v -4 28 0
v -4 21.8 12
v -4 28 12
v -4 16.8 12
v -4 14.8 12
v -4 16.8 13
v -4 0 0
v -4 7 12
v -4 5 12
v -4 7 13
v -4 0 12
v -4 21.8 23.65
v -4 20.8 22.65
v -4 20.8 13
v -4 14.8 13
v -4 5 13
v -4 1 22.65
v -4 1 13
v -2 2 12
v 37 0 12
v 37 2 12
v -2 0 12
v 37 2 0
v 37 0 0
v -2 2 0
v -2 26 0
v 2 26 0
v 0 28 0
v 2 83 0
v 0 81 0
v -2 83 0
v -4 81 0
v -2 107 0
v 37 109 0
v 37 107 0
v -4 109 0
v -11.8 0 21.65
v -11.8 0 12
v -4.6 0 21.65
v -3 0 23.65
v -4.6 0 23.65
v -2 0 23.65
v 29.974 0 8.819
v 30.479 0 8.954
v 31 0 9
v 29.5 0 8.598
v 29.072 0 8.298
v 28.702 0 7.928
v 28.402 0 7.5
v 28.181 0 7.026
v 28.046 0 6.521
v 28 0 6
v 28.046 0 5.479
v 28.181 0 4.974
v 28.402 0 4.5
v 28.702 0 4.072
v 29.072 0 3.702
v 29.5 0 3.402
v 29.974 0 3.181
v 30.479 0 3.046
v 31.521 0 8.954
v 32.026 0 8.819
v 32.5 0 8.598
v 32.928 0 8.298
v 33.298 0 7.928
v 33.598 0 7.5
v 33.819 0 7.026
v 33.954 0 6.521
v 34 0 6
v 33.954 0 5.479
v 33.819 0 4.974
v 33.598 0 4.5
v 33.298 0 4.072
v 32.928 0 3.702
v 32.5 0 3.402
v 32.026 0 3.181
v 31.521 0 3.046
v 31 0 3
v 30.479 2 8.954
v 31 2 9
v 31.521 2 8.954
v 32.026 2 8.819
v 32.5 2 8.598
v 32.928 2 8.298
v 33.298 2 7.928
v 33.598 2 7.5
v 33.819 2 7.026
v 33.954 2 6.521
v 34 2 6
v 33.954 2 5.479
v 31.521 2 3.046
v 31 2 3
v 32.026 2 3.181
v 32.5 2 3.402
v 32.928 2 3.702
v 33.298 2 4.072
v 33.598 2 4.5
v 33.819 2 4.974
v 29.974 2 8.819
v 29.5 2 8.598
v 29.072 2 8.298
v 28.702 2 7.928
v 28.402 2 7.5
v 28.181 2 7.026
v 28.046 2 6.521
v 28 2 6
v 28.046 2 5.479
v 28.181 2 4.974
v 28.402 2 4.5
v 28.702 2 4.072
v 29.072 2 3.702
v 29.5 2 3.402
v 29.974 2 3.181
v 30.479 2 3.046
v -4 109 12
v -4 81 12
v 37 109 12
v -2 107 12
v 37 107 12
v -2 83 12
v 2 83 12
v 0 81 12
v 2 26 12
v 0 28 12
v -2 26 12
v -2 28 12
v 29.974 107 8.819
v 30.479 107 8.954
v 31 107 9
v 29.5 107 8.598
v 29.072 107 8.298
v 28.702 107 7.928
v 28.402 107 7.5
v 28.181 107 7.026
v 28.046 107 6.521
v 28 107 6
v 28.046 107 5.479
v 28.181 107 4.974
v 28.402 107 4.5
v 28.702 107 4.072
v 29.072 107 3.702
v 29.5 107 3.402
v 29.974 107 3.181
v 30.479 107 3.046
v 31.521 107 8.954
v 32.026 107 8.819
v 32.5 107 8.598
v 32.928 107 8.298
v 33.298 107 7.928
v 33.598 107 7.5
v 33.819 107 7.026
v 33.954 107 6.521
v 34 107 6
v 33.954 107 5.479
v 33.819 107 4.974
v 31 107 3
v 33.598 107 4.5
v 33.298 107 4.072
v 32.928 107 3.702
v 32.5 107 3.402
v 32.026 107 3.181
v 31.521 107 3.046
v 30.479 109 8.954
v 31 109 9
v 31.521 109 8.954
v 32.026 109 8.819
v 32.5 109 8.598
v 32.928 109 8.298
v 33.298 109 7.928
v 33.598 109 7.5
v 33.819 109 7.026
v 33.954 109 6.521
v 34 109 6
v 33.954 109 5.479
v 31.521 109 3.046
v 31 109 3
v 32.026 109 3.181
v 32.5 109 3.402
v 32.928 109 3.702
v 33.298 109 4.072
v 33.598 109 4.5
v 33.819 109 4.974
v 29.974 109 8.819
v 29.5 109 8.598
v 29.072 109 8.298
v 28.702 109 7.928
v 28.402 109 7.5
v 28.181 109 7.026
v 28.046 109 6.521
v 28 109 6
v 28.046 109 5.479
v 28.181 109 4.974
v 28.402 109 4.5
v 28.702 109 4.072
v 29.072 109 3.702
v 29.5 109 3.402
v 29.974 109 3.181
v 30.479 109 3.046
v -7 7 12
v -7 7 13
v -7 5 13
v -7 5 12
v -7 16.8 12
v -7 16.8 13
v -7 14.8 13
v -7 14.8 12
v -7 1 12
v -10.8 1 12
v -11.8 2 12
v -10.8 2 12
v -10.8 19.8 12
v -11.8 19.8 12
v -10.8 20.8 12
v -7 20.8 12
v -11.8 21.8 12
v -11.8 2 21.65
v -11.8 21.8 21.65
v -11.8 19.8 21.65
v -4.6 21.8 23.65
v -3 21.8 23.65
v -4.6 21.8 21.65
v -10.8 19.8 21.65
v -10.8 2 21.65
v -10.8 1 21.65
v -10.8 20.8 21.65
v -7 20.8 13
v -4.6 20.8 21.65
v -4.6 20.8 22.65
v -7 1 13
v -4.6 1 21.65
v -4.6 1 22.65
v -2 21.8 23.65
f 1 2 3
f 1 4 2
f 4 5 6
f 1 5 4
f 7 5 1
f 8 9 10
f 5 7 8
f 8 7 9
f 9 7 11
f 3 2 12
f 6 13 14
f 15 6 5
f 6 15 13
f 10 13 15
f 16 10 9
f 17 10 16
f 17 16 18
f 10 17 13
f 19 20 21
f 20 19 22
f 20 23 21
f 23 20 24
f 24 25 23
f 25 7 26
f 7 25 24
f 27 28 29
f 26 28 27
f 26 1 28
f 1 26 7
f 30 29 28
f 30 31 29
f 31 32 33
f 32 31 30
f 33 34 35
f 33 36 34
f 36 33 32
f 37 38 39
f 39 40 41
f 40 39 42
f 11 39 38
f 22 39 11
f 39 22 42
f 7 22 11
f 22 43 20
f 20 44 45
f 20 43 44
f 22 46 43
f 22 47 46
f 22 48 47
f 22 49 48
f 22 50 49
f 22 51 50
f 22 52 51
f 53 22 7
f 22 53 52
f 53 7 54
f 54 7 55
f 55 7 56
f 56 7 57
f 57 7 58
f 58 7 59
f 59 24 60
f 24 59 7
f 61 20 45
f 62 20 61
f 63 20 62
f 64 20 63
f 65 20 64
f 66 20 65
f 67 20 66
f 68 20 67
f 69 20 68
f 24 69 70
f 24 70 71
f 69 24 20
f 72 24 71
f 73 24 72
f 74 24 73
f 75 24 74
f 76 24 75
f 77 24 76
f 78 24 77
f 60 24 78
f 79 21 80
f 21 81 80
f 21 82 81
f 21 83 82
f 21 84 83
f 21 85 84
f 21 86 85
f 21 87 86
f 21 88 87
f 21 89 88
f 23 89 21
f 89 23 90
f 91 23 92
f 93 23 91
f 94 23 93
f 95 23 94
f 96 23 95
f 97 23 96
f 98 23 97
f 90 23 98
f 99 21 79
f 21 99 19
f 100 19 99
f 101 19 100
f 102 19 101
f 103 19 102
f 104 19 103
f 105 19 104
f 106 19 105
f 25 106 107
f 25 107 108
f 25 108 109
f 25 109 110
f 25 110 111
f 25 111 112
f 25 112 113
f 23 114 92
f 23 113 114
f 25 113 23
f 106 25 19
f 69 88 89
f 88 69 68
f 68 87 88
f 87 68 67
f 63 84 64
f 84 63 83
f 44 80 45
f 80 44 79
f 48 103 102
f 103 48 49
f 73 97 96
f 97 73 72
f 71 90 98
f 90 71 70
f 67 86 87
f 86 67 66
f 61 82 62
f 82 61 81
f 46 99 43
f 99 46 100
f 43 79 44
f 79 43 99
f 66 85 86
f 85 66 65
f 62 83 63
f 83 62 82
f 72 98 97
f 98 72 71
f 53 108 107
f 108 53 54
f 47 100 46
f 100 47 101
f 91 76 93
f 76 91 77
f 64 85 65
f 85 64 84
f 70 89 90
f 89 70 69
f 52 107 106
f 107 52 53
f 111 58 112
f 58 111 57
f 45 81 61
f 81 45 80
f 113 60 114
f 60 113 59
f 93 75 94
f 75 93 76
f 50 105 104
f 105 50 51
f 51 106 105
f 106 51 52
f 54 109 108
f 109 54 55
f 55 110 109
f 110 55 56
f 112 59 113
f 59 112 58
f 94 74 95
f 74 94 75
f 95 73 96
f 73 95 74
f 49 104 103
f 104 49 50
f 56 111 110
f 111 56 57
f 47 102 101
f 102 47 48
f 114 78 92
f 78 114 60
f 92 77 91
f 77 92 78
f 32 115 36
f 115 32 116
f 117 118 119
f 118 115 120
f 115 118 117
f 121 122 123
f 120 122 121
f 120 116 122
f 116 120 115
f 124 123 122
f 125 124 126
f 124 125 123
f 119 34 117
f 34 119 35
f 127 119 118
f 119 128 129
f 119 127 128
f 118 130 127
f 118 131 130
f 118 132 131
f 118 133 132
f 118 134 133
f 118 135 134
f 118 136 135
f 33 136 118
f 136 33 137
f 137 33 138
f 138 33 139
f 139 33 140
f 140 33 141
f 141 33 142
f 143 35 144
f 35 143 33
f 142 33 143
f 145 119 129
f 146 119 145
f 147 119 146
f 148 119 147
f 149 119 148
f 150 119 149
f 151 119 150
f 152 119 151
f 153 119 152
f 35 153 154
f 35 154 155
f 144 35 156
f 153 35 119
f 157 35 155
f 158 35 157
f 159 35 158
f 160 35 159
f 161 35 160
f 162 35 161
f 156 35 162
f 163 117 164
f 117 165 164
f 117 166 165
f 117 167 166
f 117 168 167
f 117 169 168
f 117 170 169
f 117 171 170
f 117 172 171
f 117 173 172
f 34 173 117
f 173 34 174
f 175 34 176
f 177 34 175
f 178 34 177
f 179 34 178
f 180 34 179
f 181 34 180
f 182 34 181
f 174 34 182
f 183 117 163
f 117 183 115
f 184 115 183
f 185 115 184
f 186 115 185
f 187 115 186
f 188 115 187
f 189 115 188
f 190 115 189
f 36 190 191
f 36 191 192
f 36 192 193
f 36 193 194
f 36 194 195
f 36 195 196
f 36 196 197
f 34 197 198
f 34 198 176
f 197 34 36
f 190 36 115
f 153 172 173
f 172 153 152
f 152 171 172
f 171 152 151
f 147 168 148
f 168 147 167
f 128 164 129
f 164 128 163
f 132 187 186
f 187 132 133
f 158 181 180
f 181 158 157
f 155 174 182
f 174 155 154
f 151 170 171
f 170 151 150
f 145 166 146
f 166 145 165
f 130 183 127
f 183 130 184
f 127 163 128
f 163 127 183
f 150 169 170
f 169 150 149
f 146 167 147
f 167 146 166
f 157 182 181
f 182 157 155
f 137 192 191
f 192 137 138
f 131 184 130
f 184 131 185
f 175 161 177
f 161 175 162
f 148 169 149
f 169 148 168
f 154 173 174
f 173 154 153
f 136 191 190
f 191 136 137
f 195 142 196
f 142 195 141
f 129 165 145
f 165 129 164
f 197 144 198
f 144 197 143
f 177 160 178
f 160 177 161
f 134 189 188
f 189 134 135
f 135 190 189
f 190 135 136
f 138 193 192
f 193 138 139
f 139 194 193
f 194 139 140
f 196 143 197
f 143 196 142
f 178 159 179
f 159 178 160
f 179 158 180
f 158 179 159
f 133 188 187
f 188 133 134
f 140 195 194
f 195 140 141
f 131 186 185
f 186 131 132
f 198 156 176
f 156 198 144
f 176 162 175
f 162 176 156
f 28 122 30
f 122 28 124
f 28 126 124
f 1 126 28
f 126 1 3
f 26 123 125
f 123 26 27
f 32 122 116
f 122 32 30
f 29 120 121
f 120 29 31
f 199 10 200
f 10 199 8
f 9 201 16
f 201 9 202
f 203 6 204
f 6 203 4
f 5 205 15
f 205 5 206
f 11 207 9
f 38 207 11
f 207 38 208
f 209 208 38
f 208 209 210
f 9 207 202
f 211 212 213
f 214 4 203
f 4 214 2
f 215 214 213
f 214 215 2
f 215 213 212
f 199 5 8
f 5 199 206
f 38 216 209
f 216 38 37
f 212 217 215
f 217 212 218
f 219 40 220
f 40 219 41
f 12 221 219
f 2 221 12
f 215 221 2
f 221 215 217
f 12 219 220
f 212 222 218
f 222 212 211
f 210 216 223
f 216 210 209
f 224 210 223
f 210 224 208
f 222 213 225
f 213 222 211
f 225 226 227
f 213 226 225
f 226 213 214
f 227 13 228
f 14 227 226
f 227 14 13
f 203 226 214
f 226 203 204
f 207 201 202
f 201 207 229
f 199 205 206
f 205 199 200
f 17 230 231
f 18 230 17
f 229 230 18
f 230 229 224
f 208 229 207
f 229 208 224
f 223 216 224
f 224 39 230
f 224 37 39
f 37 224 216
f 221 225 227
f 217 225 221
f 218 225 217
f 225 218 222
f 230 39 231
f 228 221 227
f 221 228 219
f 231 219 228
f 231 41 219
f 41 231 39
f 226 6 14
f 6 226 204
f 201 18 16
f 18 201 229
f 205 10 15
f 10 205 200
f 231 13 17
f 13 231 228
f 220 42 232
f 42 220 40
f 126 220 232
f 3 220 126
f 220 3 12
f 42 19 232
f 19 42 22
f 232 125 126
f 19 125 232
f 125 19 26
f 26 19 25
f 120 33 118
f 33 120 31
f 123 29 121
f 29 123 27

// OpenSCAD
// file: parts/endstop_holder.scad
module holder(switch_x, switch_y, switch_z) {

  difference() {
    cube([switch_x + 2, switch_y + 2, switch_z + 2], false);

    // cut top
    translate([-1, 2, switch_z])
      cube([switch_x + 2, switch_y - 2, 3], false);

    // cut lower back edge
    translate([-1, 1, 4])
      cube([3, switch_y, switch_z - 3], false);

    // cut lower front edge
    translate([switch_x, -1, 1.6])
      cube([switch_x, switch_y + 4, switch_z + 4], false);

    // cut jags
    for (y = [5, switch_y - 5])
      translate([-1, y, 1])
        cube([3, 2, 10], false);

    // cut switch
    translate([1, 1, 1])
      cube([switch_x, switch_y, switch_z], false);
  }

}

holder(9.65, 19.8, 6.8);
// main file
use <parts/endstop_holder.scad>;

switch_x = 9.65;
switch_y = 19.8;
switch_z = 6.8;

bracket_height = 12;
holder_overhang = 12;

color("green", 0.5)
translate([-3, 0, holder_overhang])
rotate([0, -90, 0])
  holder(switch_x, switch_y, switch_z);

color("red", 0.5)
for (y = [0, 107])
translate([-4, y, 0])
difference() {
  translate([0, 0, 0])
    cube([36 + 5, 2, bracket_height], false);

  translate([27 + 5, 4, bracket_height / 2 - 3])
  rotate([90, 0, 0])
  translate([3, 3, 0])
    cylinder(6, d=6, $fn = 36);
}

color("purple", 0.5)
hull() {
  translate([-4, 0, 0])
    cube([2, 28, bracket_height], false);

  translate([-4, 0, holder_overhang + switch_x])
    cube([2, switch_y + 2, 2], false);
}

color("orange", 0.5)
translate([-4, 107 - 24, 0])
  cube([2, 24, bracket_height], false);

for (y = [26, 107 - 26])
color("pink", 0.5)
translate([-4, y, 0])
  cube([4, 2, bracket_height], false);

color("blue", 0.5)
translate([0, 26, 0])
  cube([2, 105 - 2 * 24, bracket_height], false);
